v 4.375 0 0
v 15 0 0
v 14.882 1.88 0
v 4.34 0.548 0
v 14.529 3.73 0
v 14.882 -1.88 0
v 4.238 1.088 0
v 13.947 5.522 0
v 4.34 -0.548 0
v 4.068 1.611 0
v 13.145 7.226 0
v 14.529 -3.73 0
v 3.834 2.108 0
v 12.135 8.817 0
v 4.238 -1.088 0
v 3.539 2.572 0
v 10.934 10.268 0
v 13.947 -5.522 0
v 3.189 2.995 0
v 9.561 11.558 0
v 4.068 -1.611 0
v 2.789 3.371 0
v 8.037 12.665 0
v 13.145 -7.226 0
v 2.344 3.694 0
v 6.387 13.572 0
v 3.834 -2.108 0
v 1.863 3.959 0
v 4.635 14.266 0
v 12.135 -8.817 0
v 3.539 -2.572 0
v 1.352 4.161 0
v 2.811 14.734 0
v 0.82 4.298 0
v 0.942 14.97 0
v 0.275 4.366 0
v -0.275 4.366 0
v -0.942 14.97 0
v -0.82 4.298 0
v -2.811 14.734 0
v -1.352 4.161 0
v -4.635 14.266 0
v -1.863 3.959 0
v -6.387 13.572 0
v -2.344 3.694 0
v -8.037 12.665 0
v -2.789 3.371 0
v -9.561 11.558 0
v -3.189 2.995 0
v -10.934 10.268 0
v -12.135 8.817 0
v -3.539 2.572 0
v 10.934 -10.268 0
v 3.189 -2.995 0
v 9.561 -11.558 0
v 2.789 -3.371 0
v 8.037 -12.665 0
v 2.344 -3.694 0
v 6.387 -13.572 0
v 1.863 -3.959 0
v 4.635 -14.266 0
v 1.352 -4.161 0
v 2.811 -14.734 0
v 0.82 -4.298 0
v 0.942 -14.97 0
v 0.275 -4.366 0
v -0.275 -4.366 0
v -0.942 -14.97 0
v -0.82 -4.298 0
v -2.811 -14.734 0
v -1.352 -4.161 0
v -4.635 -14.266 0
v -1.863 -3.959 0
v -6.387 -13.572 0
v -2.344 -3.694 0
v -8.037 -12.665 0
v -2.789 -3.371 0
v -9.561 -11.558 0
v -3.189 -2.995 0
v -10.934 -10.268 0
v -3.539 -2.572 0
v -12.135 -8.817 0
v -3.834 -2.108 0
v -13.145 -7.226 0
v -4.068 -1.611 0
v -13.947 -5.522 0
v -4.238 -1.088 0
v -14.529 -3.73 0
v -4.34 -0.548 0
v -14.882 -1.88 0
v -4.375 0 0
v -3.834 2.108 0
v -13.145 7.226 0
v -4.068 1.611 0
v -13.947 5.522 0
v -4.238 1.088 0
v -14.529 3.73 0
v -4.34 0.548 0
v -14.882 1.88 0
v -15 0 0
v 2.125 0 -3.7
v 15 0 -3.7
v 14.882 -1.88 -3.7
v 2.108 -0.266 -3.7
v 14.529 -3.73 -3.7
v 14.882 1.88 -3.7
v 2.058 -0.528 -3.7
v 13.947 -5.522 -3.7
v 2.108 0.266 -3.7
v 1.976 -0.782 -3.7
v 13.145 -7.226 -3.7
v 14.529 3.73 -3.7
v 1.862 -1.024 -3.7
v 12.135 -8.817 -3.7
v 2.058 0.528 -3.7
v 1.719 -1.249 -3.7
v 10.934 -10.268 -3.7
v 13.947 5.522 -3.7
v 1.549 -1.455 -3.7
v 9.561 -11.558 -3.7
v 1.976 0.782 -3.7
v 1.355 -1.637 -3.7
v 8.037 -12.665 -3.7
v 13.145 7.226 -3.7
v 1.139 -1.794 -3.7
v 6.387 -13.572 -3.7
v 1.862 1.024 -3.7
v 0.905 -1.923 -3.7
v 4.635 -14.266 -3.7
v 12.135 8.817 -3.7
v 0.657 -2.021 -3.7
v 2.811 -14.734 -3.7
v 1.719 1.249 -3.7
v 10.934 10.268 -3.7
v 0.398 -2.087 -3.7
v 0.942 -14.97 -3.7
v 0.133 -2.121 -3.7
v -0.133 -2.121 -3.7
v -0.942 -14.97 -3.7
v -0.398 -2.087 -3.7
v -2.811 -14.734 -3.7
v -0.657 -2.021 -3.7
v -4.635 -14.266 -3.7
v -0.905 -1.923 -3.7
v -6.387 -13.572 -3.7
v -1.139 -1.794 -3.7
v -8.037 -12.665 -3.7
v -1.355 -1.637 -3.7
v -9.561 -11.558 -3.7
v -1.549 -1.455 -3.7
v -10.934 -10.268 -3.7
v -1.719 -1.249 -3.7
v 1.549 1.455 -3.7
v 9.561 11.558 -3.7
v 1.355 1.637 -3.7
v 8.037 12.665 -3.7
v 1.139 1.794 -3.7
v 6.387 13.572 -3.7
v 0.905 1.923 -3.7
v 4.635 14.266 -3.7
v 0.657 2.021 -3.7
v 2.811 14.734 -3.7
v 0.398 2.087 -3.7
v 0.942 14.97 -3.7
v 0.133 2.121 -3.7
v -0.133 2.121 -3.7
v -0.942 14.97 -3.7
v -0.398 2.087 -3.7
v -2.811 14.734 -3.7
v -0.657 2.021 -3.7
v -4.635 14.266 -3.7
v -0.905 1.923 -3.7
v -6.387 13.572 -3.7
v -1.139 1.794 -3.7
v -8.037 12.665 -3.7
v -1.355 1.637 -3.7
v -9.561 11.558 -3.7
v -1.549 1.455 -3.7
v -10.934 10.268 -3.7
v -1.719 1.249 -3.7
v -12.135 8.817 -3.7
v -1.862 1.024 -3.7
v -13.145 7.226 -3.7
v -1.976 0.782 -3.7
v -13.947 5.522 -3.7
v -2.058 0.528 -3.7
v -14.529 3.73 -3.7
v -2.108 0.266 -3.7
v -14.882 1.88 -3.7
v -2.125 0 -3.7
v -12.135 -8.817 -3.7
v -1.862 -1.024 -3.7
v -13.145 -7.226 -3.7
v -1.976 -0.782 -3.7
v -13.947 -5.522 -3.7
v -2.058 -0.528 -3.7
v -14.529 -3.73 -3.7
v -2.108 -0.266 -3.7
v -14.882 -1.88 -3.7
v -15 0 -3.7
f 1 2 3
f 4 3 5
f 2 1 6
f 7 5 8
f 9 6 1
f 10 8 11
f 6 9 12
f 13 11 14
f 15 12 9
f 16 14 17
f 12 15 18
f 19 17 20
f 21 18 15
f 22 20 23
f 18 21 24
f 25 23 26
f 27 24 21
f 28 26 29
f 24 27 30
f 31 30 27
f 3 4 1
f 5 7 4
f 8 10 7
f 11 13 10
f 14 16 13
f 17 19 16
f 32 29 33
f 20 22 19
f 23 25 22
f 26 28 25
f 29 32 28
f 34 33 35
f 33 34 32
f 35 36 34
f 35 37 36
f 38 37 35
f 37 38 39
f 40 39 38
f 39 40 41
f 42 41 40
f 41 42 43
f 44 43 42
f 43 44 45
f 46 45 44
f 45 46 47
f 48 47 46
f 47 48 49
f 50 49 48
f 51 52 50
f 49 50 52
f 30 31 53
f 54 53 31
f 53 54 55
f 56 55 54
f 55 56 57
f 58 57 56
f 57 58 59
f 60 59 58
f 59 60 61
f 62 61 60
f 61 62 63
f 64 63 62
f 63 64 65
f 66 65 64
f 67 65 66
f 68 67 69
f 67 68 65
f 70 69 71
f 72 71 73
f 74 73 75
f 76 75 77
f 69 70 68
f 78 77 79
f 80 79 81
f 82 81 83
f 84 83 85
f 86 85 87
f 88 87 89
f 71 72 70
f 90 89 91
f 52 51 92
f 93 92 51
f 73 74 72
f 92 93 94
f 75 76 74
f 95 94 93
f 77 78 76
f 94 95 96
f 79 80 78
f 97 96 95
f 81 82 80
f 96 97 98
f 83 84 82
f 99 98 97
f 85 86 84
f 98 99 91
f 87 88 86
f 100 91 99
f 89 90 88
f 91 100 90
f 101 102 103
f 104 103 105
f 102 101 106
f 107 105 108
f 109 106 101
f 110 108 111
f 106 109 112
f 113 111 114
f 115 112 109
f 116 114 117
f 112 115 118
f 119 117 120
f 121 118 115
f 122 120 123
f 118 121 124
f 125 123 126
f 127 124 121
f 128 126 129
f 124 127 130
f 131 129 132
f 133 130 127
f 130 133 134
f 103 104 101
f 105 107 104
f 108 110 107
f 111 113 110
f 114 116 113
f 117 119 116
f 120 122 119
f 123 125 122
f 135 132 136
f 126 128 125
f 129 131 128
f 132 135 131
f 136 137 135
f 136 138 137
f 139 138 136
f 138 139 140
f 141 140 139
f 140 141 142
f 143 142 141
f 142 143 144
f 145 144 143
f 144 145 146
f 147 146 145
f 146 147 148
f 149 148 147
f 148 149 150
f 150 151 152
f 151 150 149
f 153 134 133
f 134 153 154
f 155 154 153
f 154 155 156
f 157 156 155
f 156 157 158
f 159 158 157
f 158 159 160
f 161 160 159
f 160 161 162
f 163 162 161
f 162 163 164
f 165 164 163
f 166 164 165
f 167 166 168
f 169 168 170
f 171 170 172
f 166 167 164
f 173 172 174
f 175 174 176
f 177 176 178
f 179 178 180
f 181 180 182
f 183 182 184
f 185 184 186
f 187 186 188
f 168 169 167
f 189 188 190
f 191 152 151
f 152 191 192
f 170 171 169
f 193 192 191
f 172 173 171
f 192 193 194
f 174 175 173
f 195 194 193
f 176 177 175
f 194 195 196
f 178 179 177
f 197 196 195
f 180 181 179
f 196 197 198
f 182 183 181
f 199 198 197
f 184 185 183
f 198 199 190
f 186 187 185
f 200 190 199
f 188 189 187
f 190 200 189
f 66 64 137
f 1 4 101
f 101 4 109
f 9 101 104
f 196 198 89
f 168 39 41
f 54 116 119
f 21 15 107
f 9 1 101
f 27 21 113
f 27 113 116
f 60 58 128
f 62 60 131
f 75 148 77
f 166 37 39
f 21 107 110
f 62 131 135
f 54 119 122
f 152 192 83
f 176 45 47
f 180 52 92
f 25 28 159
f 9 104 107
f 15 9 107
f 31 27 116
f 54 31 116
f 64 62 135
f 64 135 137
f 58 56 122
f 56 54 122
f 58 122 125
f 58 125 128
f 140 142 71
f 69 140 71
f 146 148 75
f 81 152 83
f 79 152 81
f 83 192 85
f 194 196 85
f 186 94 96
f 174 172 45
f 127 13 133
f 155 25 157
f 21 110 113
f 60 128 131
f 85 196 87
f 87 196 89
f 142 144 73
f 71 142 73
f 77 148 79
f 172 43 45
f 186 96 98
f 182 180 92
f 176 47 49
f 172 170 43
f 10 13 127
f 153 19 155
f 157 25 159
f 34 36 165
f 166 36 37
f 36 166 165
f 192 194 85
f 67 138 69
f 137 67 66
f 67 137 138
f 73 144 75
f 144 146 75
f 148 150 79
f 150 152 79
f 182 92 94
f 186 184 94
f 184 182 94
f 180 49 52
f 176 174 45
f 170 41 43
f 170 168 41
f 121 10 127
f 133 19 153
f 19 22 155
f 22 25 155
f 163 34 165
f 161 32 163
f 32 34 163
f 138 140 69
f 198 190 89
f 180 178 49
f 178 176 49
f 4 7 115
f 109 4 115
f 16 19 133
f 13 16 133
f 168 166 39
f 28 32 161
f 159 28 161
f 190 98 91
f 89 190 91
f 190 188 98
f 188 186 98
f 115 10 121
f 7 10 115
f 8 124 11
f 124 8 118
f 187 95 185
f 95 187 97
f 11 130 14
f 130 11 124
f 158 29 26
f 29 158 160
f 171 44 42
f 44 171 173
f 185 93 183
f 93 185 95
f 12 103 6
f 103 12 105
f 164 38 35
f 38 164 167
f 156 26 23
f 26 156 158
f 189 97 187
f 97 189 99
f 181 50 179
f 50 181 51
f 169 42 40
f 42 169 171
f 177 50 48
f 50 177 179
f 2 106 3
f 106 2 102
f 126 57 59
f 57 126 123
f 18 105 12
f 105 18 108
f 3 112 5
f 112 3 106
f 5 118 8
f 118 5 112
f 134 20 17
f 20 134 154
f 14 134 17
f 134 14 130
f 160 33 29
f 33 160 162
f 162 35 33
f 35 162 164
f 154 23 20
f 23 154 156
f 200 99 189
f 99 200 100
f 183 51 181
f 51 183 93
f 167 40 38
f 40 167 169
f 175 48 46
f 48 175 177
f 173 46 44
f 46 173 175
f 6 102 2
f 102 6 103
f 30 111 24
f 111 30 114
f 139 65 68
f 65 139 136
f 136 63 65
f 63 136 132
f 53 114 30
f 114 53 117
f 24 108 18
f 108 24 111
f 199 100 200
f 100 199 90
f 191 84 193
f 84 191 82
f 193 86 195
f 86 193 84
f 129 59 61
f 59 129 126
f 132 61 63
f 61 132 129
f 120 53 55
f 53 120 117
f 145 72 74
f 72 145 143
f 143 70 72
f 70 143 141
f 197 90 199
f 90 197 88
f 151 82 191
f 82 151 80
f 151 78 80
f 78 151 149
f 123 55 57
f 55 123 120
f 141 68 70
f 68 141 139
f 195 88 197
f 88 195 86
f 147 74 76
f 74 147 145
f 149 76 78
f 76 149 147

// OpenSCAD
$fn = 50;


difference() {
	union() {
		translate(v = [0, 0, -3.7000000000]) {
			cylinder(h = 3.7000000000, r = 15.0000000000);
		}
	}
	union() {
		translate(v = [0, 0, 0]) {
			rotate(a = [0, 0, 0]) {
				difference() {
					union() {
						translate(v = [0, 0, -3.7000000000]) {
							cylinder(h = 3.7000000000, r = 2.0000000000);
						}
						translate(v = [0, 0, -3.7000000000]) {
							cylinder(h = 3.7000000000, r1 = 2.1250000000, r2 = 4.3750000000);
						}
						translate(v = [0, 0, -3.7000000000]) {
							cylinder(h = 3.7000000000, r = 2.1250000000);
						}
						translate(v = [0, 0, -3.7000000000]) {
							cylinder(h = 3.7000000000, r = 2.0000000000);
						}
					}
					union();
				}
			}
		}
	}
}
